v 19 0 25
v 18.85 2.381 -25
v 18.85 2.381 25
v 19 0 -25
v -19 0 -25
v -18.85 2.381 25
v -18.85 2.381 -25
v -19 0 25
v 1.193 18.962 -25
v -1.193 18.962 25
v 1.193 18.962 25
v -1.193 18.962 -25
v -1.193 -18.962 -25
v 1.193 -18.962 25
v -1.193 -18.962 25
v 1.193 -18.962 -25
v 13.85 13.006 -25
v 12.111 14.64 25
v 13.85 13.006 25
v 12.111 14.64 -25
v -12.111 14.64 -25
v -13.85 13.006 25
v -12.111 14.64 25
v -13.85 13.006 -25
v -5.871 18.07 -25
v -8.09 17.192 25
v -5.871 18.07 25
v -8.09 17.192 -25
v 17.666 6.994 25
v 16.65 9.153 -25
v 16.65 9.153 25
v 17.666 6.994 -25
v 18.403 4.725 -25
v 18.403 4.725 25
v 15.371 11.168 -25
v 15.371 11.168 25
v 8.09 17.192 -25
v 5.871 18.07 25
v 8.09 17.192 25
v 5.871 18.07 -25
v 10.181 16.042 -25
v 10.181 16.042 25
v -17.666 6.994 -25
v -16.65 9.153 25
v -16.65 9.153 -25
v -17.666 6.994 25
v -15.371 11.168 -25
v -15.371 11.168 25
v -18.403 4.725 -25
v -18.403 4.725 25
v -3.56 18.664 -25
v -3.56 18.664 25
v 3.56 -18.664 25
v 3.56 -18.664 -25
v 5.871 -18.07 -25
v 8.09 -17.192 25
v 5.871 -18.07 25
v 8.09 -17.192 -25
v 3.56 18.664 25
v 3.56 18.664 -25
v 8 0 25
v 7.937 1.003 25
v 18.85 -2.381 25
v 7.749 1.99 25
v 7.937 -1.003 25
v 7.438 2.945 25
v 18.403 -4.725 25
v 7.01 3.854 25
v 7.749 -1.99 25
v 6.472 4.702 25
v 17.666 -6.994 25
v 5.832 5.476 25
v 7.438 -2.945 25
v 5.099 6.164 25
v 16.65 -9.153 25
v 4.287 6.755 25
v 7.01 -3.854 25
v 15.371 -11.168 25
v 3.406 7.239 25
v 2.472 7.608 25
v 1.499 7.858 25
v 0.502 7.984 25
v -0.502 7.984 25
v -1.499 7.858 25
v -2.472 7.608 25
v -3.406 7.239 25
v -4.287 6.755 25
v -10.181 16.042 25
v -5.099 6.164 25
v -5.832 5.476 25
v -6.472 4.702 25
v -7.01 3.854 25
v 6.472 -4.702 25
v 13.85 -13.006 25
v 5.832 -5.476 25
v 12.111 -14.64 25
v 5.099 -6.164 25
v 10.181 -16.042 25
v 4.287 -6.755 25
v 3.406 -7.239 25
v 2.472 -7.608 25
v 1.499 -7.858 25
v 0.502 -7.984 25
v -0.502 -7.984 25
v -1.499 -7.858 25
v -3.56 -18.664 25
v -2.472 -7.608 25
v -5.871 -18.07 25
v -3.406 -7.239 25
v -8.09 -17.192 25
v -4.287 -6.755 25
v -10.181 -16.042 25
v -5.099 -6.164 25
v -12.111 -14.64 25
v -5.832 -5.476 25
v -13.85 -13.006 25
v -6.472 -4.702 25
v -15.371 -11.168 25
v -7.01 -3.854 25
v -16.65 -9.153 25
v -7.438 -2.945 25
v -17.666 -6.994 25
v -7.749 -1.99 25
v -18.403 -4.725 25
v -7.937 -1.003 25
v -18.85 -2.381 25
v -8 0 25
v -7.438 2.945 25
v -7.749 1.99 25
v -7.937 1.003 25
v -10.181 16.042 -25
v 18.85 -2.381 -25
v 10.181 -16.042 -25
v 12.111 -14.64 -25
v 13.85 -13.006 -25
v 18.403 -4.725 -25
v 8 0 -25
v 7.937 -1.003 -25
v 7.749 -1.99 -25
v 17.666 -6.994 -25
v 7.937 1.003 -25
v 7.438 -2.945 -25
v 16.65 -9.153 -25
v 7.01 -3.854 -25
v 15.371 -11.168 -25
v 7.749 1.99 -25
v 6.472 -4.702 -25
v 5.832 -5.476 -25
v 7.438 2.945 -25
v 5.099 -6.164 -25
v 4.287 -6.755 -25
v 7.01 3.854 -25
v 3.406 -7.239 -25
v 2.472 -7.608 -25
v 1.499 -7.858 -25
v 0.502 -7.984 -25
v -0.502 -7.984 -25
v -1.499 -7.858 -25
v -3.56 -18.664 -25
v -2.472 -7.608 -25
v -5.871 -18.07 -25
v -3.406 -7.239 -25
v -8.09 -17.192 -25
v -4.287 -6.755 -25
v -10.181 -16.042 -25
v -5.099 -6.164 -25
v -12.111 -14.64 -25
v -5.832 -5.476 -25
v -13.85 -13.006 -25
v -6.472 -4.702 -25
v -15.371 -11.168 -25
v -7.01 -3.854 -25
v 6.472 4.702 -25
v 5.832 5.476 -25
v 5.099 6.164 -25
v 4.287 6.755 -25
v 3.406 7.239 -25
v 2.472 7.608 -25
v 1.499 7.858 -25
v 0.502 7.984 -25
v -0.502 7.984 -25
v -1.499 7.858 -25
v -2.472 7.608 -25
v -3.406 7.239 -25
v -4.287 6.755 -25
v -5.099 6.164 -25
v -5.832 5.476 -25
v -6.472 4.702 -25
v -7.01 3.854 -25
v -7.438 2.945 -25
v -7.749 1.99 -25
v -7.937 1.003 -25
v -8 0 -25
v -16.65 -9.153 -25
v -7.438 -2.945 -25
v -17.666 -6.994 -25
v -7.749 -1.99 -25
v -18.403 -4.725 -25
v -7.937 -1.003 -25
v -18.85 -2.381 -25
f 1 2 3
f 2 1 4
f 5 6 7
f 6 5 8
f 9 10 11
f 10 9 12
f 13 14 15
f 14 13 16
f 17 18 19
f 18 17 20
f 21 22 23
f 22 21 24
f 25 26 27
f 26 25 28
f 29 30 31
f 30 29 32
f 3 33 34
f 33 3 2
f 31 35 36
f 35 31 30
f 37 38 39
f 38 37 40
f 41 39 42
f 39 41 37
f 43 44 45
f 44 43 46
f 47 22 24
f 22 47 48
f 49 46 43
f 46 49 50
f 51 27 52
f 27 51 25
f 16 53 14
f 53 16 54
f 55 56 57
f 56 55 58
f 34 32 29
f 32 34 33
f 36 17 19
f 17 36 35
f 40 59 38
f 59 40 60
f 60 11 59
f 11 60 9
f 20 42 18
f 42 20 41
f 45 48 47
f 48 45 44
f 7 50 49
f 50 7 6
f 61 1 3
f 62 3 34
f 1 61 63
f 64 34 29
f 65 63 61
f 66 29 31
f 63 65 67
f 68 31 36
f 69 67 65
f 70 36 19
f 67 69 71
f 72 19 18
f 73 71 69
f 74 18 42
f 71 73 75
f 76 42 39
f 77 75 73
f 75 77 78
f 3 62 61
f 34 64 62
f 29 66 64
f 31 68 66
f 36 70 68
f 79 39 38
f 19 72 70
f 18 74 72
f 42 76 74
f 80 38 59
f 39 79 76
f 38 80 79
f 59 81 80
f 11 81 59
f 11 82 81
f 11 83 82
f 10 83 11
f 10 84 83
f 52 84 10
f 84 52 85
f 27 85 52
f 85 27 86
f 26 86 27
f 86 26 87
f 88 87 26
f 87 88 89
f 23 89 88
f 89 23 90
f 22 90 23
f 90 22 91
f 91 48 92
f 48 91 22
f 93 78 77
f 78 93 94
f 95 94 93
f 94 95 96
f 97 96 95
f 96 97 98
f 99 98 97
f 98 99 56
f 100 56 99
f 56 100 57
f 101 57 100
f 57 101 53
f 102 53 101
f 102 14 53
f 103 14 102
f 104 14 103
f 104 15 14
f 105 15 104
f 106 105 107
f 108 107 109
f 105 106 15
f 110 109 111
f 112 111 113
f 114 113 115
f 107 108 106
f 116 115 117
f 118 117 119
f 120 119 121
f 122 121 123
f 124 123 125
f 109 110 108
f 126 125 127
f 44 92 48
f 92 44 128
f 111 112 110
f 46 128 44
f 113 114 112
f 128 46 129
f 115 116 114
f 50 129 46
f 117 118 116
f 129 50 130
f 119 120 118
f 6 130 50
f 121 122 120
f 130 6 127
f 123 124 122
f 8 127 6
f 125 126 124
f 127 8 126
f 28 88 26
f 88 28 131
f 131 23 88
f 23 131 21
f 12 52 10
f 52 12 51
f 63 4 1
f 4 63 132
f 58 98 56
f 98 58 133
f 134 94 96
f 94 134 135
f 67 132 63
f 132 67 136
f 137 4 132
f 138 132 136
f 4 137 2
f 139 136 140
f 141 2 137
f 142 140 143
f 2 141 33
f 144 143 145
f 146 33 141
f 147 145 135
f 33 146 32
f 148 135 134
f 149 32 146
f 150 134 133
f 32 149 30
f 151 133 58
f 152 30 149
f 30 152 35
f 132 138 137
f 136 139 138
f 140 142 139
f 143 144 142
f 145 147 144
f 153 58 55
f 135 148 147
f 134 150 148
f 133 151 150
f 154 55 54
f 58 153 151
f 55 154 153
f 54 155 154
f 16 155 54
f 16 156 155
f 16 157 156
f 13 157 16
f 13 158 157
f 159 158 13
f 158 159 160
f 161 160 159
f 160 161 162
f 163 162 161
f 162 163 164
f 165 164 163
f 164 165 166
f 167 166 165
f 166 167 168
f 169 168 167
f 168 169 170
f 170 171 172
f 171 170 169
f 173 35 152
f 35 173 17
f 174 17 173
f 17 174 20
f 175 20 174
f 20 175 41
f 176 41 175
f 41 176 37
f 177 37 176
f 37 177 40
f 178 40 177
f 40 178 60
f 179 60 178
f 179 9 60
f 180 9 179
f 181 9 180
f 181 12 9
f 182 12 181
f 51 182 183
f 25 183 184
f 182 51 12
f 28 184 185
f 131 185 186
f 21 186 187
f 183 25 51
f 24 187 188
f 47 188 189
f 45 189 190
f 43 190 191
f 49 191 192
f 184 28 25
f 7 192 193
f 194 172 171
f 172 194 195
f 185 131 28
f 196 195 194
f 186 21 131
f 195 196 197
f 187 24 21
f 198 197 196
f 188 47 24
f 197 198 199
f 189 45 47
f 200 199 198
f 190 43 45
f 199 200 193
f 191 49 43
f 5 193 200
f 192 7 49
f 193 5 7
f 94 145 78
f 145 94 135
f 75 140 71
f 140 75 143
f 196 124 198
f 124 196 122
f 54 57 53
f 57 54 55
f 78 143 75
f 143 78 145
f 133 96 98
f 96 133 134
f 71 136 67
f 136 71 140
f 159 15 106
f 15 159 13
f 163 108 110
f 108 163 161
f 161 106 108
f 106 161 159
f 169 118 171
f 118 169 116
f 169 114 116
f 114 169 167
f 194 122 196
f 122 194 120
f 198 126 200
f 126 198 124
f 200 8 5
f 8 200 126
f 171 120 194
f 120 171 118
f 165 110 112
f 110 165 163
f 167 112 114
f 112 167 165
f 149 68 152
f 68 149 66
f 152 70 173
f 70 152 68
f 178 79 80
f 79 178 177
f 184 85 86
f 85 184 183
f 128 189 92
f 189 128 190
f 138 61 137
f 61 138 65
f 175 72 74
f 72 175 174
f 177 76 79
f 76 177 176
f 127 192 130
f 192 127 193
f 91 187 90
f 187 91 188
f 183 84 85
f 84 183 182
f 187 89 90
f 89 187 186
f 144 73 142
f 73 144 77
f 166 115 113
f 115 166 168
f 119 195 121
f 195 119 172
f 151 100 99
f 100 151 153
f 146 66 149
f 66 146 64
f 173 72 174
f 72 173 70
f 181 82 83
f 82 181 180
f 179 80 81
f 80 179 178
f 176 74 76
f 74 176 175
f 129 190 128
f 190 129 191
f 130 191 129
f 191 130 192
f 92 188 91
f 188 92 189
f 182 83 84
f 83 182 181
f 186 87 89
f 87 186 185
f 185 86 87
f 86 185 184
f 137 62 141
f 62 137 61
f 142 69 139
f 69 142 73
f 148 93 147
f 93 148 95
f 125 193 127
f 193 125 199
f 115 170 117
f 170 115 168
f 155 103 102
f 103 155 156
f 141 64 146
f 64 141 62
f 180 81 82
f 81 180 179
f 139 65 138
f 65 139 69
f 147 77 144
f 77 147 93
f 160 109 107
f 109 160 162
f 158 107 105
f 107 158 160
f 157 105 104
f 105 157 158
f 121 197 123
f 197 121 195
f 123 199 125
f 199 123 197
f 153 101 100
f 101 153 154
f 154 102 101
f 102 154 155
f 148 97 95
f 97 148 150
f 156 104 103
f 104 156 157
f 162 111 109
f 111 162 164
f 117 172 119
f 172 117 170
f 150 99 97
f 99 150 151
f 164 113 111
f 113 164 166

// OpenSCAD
$fn = 50;


difference() {
	union() {
		translate(v = [0, 0, -25.0000000000]) {
			cylinder(h = 50, r = 19.0000000000);
		}
	}
	union() {
		translate(v = [0, 0, -100.0000000000]) {
			cylinder(h = 200, r = 8);
		}
	}
}
